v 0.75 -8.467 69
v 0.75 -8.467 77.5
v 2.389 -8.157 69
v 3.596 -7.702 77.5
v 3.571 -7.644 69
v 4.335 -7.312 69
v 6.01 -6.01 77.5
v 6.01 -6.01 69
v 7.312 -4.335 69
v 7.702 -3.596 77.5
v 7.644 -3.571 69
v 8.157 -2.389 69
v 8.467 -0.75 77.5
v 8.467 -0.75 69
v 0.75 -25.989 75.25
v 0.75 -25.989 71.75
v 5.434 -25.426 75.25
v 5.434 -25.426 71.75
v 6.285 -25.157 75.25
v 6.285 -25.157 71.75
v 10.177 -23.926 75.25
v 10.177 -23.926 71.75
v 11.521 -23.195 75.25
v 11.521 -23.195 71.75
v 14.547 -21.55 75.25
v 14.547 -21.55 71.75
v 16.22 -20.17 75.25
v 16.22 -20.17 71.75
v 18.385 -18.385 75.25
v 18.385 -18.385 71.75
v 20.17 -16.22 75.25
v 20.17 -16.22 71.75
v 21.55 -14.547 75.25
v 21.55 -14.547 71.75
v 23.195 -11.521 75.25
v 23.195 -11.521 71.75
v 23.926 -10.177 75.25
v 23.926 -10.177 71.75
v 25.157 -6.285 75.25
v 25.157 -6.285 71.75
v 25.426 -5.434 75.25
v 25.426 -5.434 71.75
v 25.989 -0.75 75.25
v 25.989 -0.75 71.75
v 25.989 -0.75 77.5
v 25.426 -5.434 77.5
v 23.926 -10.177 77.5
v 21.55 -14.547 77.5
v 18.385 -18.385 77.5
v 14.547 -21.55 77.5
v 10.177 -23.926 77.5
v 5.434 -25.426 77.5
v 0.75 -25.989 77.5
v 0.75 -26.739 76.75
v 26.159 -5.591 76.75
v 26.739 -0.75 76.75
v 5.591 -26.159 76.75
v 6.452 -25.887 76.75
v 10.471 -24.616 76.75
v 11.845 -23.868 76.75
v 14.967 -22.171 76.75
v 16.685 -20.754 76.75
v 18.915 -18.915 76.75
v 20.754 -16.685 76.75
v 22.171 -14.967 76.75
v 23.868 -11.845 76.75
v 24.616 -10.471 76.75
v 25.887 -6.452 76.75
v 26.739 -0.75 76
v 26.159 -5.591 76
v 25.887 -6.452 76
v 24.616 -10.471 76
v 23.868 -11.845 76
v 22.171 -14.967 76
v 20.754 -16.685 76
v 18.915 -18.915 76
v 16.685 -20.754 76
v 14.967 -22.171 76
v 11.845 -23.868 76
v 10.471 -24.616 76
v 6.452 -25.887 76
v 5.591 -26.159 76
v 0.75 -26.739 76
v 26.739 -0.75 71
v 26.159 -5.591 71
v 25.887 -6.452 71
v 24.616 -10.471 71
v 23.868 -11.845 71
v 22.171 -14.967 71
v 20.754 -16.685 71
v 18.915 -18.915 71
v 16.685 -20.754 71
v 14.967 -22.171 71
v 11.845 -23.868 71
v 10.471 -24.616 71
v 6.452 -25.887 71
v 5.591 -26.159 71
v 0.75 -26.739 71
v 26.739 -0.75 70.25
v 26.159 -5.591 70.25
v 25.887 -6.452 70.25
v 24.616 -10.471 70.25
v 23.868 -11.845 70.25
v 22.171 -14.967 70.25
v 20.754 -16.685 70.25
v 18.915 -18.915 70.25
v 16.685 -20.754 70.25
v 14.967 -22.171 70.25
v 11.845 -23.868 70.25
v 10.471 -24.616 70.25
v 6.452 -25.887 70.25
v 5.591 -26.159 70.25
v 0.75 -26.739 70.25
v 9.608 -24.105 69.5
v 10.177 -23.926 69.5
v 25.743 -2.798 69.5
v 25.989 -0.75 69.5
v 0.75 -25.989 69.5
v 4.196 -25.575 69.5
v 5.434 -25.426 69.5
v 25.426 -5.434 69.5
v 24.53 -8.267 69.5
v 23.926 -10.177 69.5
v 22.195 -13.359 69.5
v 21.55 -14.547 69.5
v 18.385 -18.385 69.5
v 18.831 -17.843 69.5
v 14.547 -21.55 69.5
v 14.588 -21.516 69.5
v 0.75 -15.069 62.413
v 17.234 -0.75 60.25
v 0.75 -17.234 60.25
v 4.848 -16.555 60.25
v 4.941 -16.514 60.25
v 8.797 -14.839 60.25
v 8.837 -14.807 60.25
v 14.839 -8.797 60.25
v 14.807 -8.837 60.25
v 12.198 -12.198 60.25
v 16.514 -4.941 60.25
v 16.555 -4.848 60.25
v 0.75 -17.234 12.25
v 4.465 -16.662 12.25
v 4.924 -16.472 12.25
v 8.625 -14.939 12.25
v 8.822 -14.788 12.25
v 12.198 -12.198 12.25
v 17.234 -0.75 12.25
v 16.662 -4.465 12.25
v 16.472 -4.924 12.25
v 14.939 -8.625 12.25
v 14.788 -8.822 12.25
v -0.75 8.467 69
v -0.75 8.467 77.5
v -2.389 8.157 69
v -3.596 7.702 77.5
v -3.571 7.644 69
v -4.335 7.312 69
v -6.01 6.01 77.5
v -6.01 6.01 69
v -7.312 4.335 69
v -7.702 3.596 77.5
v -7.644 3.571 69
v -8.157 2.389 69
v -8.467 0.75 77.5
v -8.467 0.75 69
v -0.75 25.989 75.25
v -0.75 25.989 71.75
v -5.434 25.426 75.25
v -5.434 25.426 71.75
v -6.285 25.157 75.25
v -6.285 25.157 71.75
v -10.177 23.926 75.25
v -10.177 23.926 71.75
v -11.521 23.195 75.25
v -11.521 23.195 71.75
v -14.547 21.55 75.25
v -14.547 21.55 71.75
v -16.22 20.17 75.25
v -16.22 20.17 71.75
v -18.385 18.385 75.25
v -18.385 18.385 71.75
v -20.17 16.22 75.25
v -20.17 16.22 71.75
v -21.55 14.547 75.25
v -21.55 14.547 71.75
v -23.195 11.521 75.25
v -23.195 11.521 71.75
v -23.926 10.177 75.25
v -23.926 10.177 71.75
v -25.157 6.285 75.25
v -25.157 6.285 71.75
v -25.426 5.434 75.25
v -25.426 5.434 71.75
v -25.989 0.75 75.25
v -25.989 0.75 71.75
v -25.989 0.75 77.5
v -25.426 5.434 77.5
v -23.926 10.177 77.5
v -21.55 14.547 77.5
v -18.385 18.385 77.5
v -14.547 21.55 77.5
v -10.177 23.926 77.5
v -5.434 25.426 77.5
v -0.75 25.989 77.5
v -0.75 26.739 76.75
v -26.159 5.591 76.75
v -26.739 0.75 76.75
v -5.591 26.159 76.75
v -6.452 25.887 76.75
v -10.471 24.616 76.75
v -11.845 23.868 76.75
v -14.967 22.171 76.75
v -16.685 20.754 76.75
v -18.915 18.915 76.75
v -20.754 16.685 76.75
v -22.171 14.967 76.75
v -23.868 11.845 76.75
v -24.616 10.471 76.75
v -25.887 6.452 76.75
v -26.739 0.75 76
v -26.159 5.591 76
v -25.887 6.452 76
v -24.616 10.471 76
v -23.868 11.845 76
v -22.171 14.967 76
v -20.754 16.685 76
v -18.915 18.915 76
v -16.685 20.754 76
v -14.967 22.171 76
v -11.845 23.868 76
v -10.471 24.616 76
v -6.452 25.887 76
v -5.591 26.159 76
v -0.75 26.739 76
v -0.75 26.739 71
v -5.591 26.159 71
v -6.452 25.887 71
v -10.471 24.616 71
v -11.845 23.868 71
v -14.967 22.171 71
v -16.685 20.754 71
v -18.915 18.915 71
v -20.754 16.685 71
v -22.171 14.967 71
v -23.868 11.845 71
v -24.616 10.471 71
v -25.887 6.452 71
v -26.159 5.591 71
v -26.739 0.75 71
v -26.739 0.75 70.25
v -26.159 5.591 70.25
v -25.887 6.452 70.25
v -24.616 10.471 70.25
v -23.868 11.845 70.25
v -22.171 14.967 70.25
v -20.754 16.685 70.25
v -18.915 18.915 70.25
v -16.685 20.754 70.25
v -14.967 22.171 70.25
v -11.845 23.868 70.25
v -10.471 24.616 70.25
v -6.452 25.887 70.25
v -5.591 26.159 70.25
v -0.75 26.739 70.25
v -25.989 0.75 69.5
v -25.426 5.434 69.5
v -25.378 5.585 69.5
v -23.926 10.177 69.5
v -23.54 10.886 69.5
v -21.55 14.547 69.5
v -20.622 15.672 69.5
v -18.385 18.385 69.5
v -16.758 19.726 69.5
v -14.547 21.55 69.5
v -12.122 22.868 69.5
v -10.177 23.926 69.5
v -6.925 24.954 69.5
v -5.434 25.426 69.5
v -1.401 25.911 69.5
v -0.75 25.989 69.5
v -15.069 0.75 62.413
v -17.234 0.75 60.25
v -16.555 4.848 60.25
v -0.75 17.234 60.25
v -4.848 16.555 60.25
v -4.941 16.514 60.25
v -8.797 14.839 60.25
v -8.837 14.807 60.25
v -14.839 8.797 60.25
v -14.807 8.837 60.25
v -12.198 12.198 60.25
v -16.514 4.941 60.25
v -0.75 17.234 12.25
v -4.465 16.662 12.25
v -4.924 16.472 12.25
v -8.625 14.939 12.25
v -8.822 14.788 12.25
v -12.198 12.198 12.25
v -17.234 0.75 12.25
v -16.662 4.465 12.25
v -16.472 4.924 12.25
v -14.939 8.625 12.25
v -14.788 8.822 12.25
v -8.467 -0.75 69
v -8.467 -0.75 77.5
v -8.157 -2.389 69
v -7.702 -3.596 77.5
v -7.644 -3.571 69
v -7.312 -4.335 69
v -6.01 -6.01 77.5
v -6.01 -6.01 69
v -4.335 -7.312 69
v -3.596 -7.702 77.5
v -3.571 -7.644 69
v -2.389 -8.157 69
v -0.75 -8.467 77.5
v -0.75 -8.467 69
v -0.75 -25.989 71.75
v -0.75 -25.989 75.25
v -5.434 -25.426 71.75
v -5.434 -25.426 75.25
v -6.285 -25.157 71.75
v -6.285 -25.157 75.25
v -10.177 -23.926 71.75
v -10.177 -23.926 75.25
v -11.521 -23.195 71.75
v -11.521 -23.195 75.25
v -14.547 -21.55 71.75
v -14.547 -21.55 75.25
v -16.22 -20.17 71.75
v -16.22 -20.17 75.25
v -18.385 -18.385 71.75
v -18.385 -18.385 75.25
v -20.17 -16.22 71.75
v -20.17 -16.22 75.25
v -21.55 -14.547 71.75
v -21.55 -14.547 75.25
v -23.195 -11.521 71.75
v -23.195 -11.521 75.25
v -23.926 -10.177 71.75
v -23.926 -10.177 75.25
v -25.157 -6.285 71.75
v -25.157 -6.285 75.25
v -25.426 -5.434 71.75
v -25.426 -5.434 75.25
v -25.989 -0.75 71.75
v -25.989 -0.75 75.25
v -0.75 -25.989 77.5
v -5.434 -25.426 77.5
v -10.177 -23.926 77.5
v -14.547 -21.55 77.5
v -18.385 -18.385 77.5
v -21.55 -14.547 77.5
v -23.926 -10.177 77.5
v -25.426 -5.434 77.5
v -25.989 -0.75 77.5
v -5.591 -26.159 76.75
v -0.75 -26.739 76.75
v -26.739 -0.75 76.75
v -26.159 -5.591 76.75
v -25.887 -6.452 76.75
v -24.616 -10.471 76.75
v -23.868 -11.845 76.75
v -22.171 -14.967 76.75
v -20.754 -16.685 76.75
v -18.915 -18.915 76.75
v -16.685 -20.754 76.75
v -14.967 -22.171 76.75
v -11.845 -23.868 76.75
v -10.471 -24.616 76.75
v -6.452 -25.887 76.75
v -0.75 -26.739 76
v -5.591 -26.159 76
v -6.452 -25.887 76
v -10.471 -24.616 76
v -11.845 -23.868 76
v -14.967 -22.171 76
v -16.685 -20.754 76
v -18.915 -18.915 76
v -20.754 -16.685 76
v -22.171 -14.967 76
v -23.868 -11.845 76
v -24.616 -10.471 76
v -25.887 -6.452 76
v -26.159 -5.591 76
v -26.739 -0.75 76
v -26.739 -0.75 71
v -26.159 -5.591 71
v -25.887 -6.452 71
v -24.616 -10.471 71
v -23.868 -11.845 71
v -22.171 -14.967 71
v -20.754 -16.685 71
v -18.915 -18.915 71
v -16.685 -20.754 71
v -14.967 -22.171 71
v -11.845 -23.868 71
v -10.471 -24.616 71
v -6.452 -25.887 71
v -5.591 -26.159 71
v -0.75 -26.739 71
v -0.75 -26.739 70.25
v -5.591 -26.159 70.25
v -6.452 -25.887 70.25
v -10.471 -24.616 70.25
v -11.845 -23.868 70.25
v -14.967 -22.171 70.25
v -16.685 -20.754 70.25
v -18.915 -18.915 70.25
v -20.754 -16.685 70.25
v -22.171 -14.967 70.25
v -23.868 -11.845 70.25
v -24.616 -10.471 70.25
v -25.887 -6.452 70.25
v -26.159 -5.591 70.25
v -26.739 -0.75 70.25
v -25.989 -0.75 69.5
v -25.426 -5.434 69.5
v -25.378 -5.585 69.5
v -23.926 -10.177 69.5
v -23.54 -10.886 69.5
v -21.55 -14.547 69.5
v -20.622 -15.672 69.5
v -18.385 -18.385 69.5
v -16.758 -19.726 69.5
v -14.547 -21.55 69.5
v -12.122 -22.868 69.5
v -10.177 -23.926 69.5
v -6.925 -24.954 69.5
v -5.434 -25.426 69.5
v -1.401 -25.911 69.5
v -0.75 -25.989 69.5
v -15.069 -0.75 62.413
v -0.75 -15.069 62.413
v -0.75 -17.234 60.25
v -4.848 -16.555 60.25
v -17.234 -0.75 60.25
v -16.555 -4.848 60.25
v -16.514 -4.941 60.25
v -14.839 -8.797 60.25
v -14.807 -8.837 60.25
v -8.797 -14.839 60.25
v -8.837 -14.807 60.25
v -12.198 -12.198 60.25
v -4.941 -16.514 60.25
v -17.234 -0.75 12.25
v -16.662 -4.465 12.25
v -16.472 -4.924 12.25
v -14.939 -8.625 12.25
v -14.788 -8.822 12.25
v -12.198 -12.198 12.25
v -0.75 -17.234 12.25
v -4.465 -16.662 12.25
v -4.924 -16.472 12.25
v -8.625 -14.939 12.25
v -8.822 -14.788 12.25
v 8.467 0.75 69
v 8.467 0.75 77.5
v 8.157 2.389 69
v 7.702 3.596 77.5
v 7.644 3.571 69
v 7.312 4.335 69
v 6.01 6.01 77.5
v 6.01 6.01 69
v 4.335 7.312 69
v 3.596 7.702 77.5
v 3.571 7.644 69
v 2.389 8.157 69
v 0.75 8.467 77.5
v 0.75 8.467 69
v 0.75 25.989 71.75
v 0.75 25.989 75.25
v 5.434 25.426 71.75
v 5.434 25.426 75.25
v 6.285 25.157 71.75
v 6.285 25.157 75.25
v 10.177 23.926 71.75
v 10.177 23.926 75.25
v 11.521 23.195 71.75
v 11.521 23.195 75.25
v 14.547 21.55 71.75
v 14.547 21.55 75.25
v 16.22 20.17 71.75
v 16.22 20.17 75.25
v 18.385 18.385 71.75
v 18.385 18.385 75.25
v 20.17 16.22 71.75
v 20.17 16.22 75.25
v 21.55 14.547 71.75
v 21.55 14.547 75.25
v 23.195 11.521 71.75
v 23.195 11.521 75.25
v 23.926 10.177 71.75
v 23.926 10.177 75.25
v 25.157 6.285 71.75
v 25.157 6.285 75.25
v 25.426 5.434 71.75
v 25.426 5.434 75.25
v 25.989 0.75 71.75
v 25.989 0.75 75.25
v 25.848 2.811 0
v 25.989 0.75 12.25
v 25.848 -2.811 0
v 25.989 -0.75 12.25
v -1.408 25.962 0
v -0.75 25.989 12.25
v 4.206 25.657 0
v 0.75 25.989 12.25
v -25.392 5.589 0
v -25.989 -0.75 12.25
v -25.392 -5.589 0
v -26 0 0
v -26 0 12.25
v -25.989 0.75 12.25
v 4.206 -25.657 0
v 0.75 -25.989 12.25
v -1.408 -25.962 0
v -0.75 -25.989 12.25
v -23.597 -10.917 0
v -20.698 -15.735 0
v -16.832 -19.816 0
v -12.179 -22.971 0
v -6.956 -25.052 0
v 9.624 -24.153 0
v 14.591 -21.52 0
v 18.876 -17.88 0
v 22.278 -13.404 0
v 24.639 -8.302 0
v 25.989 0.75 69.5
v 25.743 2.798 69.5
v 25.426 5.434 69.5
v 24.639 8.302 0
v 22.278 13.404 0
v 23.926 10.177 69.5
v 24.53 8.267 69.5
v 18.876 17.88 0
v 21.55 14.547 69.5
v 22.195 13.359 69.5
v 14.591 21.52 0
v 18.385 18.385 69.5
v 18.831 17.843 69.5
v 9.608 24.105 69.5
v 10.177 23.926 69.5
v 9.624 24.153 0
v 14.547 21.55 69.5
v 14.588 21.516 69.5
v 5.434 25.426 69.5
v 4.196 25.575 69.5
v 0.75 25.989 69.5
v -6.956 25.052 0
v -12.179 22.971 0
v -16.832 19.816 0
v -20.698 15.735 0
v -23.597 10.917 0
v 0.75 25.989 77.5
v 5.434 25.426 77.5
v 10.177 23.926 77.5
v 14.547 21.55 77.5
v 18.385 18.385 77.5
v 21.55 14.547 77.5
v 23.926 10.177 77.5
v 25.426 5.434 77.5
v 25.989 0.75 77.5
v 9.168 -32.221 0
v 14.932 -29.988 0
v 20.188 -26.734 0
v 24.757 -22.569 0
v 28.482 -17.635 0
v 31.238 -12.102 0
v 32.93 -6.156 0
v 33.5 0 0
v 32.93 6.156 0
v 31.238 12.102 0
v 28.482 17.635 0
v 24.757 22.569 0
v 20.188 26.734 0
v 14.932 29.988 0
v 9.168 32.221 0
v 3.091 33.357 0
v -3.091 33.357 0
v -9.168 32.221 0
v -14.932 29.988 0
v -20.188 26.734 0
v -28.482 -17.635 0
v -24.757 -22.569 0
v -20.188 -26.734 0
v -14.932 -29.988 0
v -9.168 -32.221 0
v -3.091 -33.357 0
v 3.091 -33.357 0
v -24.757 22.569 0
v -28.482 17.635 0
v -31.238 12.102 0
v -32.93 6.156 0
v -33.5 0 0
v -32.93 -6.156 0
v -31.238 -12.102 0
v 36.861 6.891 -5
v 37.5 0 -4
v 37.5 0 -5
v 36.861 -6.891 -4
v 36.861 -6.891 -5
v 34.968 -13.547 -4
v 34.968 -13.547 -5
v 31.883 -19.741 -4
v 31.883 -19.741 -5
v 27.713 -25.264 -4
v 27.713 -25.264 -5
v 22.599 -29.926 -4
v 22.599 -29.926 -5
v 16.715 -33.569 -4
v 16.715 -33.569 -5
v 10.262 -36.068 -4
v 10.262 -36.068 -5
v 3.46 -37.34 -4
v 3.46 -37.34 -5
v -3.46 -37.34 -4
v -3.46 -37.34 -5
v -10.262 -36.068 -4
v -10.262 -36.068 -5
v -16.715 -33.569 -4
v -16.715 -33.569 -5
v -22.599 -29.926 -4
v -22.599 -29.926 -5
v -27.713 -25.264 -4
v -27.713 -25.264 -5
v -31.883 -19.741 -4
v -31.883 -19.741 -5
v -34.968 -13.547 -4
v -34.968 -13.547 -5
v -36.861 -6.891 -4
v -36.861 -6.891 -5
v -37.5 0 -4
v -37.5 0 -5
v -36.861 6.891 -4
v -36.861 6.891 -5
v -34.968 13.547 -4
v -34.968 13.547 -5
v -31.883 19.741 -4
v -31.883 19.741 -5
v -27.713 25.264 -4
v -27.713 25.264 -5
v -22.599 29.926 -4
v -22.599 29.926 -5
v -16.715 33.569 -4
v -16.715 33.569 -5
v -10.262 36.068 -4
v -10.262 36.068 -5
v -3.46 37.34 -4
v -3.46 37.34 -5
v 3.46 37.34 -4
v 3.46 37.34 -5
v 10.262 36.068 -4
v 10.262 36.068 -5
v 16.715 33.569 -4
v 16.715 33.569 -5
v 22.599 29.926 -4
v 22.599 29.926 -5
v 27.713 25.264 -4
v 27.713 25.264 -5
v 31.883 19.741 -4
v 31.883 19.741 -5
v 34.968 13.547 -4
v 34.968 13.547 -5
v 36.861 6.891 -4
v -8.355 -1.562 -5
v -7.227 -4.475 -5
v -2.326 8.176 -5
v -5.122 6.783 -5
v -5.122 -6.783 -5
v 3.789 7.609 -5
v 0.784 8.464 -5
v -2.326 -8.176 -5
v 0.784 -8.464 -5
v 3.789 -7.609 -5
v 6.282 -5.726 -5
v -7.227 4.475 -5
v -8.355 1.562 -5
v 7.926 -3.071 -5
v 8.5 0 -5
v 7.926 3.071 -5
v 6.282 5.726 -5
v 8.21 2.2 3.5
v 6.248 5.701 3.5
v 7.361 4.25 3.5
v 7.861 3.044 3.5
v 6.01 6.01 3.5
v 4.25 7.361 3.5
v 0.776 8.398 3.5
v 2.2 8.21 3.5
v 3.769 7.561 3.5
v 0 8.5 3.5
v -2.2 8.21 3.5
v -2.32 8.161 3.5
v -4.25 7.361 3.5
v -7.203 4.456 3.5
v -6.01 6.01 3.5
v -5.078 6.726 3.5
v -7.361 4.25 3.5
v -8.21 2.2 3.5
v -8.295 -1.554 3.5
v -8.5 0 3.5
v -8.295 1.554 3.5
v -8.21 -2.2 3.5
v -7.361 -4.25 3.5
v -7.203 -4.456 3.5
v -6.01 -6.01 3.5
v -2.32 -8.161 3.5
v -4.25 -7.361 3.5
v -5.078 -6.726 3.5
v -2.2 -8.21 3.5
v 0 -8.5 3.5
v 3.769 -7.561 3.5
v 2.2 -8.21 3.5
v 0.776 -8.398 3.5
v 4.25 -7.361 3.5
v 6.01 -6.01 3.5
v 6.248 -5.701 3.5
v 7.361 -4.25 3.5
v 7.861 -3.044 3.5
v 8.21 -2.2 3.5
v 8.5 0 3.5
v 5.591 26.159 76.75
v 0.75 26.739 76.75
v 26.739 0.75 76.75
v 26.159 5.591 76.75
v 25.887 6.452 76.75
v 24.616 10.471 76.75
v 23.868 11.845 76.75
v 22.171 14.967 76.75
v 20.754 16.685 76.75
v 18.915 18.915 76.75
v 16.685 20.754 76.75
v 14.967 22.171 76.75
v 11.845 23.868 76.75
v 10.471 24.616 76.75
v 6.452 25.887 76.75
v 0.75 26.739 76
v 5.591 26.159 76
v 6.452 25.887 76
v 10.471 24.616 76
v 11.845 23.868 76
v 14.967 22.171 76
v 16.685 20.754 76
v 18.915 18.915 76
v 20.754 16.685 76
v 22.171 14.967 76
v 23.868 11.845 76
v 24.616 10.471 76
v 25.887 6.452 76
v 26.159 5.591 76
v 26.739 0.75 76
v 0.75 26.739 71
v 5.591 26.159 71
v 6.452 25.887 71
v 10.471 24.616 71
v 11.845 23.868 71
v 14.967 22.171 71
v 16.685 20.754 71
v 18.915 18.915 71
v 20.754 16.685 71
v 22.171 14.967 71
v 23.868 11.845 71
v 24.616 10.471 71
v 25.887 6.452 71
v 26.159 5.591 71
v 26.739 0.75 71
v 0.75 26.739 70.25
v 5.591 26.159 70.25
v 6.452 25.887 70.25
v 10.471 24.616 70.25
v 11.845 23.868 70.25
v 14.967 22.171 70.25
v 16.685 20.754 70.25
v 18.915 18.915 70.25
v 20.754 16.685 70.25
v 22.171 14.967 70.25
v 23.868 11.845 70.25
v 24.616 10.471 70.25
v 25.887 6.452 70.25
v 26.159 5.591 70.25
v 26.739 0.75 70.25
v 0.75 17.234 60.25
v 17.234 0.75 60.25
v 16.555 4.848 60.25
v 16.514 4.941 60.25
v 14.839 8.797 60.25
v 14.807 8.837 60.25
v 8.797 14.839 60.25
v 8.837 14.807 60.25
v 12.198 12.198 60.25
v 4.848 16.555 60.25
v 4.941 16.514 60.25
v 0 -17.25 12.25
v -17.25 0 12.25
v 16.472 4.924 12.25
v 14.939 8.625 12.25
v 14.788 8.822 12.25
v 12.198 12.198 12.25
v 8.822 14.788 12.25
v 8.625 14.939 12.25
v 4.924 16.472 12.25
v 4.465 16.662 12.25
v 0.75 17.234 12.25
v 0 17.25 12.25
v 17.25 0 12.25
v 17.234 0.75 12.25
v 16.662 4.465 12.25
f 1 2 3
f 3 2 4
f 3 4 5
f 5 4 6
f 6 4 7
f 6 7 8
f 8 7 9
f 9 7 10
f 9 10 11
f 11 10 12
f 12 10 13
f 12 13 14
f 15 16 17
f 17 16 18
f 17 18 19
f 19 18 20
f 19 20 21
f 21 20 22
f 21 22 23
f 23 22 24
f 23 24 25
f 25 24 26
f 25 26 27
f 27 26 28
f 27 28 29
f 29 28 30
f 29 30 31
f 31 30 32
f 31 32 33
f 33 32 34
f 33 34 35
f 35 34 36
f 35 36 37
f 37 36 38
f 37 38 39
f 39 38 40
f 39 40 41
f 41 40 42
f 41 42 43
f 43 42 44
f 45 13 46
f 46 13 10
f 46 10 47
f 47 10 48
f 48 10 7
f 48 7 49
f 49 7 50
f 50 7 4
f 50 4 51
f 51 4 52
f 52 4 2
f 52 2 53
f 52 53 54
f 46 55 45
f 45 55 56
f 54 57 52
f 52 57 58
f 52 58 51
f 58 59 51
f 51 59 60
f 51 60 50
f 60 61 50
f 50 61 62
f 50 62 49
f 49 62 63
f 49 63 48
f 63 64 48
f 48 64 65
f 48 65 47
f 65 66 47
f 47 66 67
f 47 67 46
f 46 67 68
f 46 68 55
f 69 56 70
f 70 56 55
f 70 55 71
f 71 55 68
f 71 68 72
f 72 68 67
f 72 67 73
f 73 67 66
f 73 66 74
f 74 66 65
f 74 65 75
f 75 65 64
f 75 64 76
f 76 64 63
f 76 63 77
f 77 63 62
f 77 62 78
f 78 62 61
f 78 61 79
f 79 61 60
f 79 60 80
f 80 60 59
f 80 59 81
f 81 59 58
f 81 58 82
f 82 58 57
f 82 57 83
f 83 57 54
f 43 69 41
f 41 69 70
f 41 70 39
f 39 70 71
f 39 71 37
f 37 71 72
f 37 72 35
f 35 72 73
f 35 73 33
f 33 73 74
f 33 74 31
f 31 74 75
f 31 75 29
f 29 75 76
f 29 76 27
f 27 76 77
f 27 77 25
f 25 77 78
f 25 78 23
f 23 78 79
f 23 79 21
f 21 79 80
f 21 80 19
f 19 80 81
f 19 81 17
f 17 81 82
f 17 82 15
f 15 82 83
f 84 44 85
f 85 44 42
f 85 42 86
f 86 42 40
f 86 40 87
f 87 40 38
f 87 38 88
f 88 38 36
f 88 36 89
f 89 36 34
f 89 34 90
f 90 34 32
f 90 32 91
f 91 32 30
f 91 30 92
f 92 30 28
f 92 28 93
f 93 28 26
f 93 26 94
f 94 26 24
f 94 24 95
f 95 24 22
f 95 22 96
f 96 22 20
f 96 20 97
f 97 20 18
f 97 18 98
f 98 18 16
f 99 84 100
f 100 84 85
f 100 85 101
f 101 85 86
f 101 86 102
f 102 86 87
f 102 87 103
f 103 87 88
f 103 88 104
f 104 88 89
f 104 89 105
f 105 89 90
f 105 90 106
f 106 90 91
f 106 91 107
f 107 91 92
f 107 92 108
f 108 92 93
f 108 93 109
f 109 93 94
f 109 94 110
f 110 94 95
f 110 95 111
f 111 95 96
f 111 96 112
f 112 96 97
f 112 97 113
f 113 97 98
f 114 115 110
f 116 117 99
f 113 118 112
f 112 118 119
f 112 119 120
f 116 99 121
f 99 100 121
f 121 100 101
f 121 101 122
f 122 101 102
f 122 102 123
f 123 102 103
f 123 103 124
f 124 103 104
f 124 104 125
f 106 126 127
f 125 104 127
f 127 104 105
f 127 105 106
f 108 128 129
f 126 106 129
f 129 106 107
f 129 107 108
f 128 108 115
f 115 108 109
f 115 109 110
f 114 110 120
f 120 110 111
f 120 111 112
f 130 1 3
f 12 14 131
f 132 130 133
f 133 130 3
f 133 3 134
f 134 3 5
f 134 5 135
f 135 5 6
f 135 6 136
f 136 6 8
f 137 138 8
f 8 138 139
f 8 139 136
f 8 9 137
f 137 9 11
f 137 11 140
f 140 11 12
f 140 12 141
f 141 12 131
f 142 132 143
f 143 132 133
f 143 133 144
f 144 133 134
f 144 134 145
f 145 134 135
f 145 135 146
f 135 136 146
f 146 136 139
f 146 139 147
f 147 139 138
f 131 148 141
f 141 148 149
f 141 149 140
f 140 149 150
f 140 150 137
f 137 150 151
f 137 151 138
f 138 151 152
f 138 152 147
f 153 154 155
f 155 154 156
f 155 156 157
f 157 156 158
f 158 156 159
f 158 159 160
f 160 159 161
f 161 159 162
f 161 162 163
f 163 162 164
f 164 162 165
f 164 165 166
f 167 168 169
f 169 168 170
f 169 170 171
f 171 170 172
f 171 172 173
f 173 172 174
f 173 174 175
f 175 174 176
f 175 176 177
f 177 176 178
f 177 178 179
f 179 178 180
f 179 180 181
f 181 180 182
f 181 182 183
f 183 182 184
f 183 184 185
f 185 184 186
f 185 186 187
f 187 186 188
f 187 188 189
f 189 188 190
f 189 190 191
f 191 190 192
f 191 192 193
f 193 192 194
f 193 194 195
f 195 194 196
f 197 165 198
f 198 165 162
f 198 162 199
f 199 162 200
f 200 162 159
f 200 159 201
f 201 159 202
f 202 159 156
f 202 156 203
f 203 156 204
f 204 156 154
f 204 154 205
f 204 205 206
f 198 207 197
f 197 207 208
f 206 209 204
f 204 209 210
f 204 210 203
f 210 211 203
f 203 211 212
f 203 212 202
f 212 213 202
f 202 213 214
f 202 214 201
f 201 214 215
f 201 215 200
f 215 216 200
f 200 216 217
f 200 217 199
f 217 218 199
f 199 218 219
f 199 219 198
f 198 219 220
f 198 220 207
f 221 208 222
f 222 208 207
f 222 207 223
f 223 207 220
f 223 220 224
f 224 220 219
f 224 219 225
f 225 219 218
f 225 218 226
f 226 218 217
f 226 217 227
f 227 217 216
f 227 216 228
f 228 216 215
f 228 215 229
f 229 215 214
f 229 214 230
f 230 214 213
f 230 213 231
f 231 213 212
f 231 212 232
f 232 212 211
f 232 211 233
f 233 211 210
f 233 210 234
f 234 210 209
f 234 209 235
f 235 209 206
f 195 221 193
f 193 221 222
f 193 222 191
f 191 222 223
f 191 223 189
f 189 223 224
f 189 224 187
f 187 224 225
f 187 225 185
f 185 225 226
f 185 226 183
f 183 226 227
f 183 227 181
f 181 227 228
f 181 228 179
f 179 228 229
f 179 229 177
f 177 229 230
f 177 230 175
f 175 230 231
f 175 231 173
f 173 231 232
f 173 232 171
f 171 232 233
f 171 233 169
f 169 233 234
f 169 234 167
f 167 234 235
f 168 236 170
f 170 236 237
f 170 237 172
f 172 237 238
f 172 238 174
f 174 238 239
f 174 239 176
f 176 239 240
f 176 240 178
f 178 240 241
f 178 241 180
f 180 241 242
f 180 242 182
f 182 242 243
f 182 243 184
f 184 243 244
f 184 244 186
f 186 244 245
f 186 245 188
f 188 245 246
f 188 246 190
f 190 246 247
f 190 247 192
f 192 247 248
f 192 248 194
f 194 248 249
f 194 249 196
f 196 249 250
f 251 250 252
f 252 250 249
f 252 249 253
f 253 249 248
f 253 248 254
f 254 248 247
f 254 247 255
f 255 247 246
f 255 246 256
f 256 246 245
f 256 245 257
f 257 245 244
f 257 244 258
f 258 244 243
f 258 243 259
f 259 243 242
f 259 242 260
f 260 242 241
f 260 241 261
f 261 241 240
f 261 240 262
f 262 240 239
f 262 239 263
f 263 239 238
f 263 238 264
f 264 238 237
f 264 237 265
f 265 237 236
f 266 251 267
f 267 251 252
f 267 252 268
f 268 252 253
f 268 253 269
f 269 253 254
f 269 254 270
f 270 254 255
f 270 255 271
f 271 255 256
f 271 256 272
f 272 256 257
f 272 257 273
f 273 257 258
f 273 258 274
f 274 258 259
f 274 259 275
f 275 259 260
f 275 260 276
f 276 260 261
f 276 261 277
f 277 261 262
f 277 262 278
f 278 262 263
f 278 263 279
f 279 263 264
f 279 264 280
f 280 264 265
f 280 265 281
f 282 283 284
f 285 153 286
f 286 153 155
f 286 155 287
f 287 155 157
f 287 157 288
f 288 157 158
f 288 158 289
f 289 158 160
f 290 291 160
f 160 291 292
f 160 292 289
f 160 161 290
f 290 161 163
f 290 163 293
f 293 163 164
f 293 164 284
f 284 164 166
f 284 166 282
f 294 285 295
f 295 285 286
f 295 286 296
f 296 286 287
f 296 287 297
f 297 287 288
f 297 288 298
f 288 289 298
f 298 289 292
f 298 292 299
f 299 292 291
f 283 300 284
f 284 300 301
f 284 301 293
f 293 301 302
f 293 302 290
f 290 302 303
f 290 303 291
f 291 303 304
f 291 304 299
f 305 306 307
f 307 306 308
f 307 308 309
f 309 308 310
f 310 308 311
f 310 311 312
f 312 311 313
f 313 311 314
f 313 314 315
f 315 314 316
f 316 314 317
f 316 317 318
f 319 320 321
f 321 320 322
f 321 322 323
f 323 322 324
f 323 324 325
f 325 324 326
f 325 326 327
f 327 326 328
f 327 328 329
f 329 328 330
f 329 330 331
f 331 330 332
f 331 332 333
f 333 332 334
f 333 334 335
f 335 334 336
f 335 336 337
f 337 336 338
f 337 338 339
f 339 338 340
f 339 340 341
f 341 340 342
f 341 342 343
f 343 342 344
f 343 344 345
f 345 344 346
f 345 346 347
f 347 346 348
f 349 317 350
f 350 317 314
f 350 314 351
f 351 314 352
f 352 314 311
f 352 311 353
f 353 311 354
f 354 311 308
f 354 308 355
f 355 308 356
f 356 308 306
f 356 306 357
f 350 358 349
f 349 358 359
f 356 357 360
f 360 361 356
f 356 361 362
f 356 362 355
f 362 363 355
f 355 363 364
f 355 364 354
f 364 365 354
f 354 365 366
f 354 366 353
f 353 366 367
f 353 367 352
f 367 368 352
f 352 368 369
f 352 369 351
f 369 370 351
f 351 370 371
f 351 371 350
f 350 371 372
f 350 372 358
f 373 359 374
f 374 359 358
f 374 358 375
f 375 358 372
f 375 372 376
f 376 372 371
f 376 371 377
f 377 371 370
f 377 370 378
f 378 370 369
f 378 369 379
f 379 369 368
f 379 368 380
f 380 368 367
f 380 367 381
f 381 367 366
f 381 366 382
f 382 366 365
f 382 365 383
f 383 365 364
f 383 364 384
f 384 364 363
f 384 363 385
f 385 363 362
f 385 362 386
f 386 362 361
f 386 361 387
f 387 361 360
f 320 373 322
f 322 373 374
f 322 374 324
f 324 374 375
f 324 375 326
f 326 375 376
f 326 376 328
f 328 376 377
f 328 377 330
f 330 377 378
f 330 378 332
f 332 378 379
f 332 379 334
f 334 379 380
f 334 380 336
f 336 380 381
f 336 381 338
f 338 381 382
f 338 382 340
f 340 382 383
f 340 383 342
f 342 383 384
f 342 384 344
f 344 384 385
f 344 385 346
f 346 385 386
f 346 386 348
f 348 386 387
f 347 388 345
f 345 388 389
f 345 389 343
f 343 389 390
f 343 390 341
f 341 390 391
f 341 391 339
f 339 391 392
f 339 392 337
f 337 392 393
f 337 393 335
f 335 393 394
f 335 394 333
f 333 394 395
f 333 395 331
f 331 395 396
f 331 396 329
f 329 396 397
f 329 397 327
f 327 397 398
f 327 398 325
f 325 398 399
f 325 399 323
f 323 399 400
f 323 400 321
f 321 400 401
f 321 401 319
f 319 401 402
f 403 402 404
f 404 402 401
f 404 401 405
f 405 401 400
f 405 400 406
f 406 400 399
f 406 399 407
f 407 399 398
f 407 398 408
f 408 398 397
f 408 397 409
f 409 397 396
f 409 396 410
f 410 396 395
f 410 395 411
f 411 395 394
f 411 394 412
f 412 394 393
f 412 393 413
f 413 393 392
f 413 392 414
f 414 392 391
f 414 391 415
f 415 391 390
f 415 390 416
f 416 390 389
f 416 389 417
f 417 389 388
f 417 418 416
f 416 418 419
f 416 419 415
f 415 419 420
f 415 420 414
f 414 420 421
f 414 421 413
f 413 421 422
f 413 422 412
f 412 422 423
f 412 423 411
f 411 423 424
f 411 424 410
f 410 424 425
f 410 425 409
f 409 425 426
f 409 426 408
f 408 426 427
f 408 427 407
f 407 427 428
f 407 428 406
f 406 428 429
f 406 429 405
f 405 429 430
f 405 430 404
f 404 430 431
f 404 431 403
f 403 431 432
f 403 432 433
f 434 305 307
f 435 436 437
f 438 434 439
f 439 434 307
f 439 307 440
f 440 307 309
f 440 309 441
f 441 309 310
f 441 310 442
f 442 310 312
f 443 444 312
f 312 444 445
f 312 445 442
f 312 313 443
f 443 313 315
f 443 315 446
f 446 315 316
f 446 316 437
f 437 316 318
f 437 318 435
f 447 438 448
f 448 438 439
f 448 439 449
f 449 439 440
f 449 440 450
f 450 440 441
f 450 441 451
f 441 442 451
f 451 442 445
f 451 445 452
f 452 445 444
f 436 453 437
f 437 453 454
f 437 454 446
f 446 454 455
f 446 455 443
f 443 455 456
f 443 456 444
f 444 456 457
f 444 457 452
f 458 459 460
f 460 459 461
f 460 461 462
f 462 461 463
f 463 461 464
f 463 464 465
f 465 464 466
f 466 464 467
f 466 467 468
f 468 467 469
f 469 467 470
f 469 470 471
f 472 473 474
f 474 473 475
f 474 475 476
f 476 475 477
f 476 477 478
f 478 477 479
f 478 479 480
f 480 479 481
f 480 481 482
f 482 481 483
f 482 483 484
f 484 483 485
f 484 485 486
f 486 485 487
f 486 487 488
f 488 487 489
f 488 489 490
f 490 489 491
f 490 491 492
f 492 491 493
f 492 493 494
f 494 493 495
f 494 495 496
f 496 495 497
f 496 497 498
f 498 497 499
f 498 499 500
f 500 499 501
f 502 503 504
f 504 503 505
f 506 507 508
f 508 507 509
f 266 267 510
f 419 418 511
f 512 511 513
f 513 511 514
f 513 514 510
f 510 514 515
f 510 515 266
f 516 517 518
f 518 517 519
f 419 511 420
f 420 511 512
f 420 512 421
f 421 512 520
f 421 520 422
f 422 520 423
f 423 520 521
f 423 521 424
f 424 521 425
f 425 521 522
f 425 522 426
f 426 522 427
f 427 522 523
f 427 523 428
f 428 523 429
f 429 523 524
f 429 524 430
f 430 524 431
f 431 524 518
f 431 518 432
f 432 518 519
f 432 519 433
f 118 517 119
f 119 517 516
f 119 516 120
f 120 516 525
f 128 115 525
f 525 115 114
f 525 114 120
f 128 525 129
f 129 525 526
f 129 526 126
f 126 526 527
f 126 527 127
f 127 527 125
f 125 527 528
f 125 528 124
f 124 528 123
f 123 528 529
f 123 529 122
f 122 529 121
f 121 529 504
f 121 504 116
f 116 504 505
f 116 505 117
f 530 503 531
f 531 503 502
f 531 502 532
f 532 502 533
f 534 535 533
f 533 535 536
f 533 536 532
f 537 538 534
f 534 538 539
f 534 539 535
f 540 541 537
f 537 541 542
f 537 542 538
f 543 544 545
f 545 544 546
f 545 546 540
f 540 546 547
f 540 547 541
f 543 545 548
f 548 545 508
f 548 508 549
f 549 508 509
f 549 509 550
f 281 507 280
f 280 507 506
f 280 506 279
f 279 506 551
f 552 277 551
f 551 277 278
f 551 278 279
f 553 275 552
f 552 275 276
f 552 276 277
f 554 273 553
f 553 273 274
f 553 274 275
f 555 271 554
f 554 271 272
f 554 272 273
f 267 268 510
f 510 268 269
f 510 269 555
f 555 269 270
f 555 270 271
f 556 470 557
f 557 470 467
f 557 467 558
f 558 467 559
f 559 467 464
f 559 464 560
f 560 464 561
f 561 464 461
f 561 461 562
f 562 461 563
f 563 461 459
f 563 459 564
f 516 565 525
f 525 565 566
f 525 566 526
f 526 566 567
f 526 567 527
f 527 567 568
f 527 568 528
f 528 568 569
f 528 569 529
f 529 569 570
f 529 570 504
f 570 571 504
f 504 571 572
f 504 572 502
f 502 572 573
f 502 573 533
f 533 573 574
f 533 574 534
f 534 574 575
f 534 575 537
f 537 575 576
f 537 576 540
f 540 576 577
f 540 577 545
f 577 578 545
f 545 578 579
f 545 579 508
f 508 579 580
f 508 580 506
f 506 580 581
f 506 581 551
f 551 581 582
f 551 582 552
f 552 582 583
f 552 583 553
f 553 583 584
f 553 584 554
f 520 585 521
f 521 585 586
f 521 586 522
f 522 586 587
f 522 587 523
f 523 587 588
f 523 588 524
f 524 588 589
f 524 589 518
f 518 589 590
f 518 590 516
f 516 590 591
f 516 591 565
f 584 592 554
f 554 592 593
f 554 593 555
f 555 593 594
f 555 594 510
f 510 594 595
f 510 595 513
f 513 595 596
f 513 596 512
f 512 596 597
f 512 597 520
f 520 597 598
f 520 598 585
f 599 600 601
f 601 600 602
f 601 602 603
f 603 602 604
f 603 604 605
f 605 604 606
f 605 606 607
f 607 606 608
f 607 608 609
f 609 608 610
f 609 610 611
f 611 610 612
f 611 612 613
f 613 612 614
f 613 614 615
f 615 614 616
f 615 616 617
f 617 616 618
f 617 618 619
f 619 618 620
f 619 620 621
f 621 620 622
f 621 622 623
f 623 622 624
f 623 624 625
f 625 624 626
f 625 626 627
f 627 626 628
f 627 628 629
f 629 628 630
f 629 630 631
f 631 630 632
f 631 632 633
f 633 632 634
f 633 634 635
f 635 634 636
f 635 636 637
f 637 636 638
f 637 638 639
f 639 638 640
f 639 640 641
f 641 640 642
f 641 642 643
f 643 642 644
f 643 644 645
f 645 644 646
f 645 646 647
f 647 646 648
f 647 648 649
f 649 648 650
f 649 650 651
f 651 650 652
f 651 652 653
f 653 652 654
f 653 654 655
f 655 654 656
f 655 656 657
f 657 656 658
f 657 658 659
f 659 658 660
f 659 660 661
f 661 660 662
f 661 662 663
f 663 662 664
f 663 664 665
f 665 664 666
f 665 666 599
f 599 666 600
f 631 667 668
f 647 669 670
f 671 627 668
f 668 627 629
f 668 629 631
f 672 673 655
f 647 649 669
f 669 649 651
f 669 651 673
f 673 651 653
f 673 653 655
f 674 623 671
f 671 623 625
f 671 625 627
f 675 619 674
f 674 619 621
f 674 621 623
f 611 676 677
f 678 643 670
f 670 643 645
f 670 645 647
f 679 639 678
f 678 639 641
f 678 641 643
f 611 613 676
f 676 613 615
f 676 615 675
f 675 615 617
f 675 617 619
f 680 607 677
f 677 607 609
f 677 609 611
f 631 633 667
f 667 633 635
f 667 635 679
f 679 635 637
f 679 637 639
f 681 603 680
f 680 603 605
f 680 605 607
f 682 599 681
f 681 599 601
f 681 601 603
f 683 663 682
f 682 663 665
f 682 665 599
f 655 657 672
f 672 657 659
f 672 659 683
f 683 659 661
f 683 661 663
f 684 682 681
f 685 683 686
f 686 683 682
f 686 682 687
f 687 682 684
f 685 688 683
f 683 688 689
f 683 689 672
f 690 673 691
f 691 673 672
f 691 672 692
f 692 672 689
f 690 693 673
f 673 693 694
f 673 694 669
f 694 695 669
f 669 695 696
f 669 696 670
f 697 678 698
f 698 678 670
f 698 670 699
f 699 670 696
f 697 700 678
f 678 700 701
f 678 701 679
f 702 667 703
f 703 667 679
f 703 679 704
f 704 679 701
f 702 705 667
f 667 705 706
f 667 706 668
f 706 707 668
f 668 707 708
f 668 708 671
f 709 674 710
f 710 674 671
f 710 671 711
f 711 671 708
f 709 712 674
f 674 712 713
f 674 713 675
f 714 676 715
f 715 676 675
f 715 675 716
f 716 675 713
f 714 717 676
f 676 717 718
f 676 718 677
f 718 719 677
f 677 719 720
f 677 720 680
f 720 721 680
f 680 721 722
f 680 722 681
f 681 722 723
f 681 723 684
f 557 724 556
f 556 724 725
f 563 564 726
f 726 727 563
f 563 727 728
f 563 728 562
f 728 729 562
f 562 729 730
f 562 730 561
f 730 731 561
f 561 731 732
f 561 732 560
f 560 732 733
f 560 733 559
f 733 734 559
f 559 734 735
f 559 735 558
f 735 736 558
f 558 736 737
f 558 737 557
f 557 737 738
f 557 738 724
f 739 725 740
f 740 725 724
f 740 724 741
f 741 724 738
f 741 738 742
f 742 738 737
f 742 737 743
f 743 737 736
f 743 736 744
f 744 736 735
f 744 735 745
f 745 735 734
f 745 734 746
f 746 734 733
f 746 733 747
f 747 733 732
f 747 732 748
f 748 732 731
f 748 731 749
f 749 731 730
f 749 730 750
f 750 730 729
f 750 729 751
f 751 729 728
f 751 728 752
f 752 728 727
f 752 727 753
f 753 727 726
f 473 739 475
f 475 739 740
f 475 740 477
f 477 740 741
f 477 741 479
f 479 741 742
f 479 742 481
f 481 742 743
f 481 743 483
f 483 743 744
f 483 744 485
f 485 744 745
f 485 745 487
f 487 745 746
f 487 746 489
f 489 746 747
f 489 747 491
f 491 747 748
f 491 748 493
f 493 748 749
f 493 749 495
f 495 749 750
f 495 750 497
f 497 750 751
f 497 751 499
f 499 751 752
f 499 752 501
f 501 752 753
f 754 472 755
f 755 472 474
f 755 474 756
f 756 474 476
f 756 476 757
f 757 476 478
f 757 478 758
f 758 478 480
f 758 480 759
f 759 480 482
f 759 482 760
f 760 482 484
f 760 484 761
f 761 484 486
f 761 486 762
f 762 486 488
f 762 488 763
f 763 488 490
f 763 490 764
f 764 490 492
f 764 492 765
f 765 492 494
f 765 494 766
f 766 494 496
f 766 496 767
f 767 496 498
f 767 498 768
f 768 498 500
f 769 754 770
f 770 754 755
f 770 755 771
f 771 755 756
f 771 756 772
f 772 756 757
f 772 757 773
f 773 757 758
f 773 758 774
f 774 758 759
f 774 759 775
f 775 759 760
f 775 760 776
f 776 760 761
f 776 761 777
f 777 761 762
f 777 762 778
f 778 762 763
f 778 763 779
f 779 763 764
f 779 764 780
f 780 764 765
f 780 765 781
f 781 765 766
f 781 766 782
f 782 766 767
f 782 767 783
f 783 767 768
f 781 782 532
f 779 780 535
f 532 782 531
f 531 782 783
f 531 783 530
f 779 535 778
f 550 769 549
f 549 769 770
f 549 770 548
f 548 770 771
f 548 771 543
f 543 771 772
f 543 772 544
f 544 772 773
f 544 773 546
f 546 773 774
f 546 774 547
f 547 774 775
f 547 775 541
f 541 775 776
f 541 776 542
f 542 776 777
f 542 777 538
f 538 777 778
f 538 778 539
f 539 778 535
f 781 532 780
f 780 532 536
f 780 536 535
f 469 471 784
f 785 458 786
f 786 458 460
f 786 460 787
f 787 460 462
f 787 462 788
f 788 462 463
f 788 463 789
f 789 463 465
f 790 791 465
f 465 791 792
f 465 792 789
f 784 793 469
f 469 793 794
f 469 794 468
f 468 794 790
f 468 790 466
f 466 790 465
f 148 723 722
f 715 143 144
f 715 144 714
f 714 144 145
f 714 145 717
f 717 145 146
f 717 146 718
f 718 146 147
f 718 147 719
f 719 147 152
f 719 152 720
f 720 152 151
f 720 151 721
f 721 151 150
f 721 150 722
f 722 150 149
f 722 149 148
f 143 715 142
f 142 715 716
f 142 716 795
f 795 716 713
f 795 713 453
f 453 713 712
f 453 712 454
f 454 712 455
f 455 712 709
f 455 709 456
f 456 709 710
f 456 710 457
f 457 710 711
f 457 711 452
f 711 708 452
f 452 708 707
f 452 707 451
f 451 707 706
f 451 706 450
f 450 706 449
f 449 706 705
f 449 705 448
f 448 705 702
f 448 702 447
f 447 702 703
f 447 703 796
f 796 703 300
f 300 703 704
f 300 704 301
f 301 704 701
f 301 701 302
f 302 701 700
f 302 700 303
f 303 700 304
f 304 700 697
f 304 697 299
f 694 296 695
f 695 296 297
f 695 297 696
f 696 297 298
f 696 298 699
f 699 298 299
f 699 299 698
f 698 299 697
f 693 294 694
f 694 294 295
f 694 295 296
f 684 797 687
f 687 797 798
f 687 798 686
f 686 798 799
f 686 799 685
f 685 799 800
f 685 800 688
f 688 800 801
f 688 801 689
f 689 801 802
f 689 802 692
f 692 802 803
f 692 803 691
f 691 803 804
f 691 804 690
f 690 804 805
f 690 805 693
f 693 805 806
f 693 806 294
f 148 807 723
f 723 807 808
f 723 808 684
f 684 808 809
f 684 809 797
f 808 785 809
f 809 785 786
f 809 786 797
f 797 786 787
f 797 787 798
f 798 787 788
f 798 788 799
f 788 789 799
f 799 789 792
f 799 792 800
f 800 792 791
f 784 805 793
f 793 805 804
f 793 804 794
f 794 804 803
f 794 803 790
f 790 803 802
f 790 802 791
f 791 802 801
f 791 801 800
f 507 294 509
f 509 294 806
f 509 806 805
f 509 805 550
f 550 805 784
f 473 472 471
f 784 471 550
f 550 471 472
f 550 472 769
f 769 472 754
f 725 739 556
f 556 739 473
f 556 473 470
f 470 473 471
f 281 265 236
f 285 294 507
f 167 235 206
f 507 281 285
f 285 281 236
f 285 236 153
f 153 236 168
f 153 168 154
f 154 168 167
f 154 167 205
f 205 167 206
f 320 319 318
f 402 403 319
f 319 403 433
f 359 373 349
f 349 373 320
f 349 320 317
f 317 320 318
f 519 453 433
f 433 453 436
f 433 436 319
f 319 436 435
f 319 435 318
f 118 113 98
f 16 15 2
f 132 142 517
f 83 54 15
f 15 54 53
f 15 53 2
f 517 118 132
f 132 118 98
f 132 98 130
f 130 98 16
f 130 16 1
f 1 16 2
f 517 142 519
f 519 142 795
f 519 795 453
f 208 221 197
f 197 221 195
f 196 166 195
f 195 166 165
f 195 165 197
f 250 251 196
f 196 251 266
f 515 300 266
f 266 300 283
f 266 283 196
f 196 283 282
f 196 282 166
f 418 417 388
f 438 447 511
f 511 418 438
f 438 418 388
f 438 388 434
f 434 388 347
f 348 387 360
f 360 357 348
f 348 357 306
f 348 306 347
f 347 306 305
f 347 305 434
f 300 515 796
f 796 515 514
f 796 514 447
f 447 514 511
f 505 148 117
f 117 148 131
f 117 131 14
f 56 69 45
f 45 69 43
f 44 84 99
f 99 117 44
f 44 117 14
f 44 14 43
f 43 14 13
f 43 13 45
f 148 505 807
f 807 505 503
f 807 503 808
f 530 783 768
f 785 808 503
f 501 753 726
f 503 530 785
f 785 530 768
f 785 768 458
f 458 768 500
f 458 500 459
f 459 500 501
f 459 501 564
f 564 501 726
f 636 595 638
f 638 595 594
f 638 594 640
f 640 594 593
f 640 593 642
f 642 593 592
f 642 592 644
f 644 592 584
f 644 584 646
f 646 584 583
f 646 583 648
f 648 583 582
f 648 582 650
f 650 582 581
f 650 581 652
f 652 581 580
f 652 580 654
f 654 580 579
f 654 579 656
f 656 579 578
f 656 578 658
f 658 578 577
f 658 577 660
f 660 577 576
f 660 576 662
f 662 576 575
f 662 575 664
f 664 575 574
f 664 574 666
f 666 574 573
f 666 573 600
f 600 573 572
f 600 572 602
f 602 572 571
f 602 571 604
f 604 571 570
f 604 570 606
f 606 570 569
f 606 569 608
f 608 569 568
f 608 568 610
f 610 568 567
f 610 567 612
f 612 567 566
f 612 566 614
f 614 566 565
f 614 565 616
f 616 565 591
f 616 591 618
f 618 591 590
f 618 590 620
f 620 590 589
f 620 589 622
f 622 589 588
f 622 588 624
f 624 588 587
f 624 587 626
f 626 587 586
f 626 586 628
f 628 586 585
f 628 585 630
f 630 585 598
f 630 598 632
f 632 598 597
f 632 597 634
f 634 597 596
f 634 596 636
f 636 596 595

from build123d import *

# Parameters (mm, degrees)
AXLE_BASE_SKETCH_R        = 26
AXLE_DEPTH                = 77.5
GUARD_BASE_R              = 37.5
GUARD_DEPTH               = 5
INNER_AXLE_HOLE_BASE_R    = 8.5
INNER_AXLE_HOLE_DEPTH     = 83.5
BEND_START                = -65.25
BEND_ROOM_BASE_W          = 1.5
BEND_ROOM_BASE_H          = 75
BEND_ROOM_1_DEPTH         = 65.25
BEND_ROOM_2_COUNT         = 2
BEND_ROOM_2_ANGLE         = 90
EASY_REMOVAL_CHAMFER_SIZE = 4


with BuildPart() as part:
    # Axle base sketch → Axle (new body)
    with BuildSketch(Plane.XY):
        Circle(AXLE_BASE_SKETCH_R)
    extrude(amount=AXLE_DEPTH)

    # Guard base → Guard (add)
    with BuildSketch(Plane(origin=(0, 0, 0), x_dir=(-1, 0, 0), z_dir=(0, 0, -1))):
        Circle(GUARD_BASE_R)
    extrude(amount=GUARD_DEPTH)

    # Inner axle hole base → Inner axle hole (cut, through all)
    with BuildSketch(Plane.XY.offset(77.5)):
        Circle(INNER_AXLE_HOLE_BASE_R)
    extrude(amount=-INNER_AXLE_HOLE_DEPTH, mode=Mode.SUBTRACT)

    # Mate ring base → Mate rings (revolve)
    with BuildSketch(Plane(origin=(0, 0, 0), x_dir=(1, 0, 0), z_dir=(0, 1, 0))):
        Polygon((26, -77.5), (26.75, -76.75), (26.75, -76), (26, -75.25), align=None)
        Polygon((26, -71.75), (26.75, -71), (26.75, -70.25), (26, -69.5), align=None)
    revolve(axis=Axis((0, 0, 0), (0, 0, -1)))

    # Inner mass remove base → Inner mass remove (revolve, cut)
    with BuildSketch(Plane(origin=(0, 0, 0), x_dir=(0, 0, -1), z_dir=(1, 0, 0))):
        Polygon((-77.5, 0), (-60.25, -17.25), (-12.25, -17.25), (5, 0), align=None)
    revolve(axis=Axis((0, 0, 0), (0, 0, -1)), mode=Mode.SUBTRACT)

    # Bend room base → Bend room 1 (cut)
    with BuildSketch(Plane.XY.offset(77.5).offset(BEND_START)):
        Rectangle(BEND_ROOM_BASE_W, BEND_ROOM_BASE_H)
    bend_room_1 = extrude(amount=BEND_ROOM_1_DEPTH, mode=Mode.SUBTRACT)

    # Bend room 2: Bend room 1 ×2 about axis
    bend_room_2_axis = Axis((0, 0, 0), (0, 0, -1))
    for i in range(1, BEND_ROOM_2_COUNT):
        add(bend_room_1.rotate(bend_room_2_axis, i * BEND_ROOM_2_ANGLE / (BEND_ROOM_2_COUNT - 1)), mode=Mode.SUBTRACT)

    # Easy removal chamfer
    easy_removal_chamfer_edges = [part.edges().sort_by_distance(p)[0] for p in [
        (37.5, 0, 0),
    ]]
    chamfer(easy_removal_chamfer_edges, length=EASY_REMOVAL_CHAMFER_SIZE)


solid = part.part
